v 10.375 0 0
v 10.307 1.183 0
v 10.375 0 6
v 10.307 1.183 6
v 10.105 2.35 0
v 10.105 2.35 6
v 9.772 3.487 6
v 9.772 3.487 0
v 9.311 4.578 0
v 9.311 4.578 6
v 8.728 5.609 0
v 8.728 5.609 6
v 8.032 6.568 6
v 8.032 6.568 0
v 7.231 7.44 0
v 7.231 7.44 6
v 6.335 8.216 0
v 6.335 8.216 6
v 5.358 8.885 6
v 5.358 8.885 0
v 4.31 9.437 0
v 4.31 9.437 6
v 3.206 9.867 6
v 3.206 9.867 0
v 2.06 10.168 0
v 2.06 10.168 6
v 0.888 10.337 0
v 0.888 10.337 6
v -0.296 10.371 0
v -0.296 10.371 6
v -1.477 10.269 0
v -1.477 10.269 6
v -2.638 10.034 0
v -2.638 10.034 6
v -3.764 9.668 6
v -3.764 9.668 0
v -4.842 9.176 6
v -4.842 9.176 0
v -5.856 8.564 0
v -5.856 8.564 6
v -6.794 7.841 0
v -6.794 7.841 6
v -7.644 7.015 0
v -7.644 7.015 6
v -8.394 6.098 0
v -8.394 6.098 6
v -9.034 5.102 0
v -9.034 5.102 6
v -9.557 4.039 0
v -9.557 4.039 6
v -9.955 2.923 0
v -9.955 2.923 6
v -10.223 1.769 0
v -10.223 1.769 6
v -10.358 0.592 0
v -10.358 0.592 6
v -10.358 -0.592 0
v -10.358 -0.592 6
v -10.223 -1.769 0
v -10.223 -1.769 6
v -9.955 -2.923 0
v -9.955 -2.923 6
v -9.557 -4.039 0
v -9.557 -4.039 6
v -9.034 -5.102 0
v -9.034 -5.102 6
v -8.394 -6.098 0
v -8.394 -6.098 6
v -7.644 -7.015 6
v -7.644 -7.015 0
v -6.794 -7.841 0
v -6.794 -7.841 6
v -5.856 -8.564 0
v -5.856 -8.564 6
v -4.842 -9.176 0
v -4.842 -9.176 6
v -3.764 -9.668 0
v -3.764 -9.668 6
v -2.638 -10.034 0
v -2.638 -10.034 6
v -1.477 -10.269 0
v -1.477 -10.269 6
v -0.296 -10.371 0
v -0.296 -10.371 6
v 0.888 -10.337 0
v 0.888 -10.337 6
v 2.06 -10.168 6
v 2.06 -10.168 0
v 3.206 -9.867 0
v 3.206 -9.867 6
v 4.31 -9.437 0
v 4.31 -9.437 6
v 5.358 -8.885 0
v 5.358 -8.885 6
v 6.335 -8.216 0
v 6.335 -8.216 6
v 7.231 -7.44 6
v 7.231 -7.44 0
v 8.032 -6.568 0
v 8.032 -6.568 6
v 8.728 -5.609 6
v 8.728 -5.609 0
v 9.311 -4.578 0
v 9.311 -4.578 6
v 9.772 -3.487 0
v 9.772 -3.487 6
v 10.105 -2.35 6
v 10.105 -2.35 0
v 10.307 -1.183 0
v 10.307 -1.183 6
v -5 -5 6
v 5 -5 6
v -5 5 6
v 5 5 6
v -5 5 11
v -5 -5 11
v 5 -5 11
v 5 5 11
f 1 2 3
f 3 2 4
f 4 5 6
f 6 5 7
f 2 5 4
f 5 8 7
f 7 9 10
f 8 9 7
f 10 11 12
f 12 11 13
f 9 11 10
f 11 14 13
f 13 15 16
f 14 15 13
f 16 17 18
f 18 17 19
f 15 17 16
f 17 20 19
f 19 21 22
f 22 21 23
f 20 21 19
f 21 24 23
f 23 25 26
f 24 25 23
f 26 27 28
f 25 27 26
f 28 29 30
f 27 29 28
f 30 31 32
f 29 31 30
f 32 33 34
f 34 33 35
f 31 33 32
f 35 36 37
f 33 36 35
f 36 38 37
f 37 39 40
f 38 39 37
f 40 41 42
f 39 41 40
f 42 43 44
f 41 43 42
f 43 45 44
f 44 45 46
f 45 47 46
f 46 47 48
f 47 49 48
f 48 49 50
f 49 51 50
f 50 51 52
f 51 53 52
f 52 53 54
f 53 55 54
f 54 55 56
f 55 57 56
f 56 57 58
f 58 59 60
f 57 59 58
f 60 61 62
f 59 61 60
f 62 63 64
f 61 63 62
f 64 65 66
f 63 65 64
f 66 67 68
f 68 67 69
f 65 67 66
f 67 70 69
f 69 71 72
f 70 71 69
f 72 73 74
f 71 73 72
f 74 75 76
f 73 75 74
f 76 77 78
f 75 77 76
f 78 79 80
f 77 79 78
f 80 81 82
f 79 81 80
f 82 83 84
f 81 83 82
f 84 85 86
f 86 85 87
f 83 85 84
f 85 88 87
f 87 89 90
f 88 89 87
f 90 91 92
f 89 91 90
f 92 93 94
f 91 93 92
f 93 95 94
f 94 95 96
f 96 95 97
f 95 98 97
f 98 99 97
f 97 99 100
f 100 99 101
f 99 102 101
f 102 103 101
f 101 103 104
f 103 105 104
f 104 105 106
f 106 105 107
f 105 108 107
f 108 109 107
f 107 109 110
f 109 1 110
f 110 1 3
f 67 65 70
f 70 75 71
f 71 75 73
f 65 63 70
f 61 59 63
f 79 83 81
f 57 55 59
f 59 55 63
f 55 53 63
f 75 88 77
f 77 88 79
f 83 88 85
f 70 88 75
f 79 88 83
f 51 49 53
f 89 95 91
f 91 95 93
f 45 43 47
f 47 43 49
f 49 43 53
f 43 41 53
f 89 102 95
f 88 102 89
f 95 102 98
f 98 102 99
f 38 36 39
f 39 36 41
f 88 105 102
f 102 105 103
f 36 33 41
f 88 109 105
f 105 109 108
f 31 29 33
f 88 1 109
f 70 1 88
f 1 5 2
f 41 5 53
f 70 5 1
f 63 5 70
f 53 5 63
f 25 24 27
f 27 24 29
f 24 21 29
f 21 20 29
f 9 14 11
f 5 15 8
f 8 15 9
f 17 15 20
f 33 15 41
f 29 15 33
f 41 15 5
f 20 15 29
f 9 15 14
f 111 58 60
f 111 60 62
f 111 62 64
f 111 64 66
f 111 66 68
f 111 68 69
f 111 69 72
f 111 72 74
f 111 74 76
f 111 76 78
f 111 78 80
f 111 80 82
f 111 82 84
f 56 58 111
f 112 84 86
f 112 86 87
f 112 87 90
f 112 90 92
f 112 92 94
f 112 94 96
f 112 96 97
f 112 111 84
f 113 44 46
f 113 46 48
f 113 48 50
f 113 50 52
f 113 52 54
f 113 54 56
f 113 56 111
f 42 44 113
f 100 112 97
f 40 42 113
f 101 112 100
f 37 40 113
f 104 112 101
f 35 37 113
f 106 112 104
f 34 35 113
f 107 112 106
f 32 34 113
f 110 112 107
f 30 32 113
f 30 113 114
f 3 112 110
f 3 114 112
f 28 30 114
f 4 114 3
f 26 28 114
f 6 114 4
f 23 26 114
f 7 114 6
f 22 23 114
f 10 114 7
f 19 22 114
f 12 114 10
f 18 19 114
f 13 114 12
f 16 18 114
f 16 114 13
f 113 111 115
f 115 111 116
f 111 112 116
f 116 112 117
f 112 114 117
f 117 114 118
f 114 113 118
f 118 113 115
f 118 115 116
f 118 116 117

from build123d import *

# Parameters (mm, degrees)
SKETCH_W     = 10
SKETCH_H     = 10
PAD_DEPTH    = 5
SKETCH001_R  = 10.375
PAD001_DEPTH = 6


with BuildPart() as part:
    # Sketch → Pad (new body)
    with BuildSketch(Plane.XY.offset(6)):
        Rectangle(SKETCH_W, SKETCH_H)
    extrude(amount=PAD_DEPTH)

    # Sketch001 → Pad001 (join)
    with BuildSketch(Plane.XY):
        Circle(SKETCH001_R)
    extrude(amount=PAD001_DEPTH)


solid = part.part
